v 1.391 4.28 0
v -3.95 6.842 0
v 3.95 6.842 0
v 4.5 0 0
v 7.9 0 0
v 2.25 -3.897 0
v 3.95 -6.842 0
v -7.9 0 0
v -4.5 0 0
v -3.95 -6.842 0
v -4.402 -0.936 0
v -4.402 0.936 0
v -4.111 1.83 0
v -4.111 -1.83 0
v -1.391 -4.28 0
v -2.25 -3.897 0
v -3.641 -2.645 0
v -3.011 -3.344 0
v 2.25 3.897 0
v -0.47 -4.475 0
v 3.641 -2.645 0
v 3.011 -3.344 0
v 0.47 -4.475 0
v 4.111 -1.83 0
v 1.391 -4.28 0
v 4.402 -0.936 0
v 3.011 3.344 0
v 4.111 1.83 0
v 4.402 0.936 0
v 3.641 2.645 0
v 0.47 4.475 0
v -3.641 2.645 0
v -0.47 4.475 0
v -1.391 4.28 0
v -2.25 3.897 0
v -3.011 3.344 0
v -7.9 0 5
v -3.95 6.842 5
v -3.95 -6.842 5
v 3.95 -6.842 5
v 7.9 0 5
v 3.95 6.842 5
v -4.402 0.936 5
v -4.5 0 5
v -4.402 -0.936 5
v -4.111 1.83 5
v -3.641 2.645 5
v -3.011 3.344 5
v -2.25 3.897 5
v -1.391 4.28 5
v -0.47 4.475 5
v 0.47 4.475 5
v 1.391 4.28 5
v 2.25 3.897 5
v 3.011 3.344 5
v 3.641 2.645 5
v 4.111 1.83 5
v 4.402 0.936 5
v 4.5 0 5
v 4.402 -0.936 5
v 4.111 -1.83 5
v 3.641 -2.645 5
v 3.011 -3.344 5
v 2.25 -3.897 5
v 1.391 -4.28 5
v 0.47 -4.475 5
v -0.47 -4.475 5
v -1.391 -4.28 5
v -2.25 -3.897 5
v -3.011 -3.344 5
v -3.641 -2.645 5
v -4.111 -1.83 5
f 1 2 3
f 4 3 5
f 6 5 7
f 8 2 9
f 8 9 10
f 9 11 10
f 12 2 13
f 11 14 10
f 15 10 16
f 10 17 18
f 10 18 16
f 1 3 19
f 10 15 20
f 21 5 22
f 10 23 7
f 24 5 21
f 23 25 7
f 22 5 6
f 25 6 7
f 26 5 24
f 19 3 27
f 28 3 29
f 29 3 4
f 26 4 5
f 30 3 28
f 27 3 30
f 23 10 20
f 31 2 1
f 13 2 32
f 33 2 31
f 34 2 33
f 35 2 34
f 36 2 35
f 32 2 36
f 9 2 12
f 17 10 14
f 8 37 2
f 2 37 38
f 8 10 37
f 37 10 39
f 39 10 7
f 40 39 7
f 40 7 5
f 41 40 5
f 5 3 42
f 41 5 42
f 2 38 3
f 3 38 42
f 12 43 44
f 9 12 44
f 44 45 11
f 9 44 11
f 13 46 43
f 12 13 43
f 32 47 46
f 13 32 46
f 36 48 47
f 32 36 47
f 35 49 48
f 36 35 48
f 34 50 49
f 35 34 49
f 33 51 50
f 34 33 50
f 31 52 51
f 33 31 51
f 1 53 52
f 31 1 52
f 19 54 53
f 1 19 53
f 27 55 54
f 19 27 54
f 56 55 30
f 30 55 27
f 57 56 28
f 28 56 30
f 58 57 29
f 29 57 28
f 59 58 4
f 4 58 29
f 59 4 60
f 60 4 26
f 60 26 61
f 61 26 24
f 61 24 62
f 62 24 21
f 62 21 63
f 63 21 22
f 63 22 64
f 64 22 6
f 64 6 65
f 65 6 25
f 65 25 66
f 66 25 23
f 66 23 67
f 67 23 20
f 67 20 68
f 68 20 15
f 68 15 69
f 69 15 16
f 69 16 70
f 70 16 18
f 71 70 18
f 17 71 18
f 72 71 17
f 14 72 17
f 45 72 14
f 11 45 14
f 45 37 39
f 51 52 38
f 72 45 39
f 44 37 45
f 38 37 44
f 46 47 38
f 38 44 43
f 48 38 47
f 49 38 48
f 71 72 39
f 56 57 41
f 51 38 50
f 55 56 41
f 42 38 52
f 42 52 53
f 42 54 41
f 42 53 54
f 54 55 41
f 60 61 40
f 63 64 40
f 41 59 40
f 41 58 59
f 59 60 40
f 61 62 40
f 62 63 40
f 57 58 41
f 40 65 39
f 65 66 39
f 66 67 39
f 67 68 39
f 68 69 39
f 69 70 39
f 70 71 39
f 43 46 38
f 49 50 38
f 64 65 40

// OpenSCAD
difference() {
	cylinder(5,r=15.8/2,$fa=60);
	translate([0,0,-0.5])cylinder(6,r=9/2,$fn=30);
}
